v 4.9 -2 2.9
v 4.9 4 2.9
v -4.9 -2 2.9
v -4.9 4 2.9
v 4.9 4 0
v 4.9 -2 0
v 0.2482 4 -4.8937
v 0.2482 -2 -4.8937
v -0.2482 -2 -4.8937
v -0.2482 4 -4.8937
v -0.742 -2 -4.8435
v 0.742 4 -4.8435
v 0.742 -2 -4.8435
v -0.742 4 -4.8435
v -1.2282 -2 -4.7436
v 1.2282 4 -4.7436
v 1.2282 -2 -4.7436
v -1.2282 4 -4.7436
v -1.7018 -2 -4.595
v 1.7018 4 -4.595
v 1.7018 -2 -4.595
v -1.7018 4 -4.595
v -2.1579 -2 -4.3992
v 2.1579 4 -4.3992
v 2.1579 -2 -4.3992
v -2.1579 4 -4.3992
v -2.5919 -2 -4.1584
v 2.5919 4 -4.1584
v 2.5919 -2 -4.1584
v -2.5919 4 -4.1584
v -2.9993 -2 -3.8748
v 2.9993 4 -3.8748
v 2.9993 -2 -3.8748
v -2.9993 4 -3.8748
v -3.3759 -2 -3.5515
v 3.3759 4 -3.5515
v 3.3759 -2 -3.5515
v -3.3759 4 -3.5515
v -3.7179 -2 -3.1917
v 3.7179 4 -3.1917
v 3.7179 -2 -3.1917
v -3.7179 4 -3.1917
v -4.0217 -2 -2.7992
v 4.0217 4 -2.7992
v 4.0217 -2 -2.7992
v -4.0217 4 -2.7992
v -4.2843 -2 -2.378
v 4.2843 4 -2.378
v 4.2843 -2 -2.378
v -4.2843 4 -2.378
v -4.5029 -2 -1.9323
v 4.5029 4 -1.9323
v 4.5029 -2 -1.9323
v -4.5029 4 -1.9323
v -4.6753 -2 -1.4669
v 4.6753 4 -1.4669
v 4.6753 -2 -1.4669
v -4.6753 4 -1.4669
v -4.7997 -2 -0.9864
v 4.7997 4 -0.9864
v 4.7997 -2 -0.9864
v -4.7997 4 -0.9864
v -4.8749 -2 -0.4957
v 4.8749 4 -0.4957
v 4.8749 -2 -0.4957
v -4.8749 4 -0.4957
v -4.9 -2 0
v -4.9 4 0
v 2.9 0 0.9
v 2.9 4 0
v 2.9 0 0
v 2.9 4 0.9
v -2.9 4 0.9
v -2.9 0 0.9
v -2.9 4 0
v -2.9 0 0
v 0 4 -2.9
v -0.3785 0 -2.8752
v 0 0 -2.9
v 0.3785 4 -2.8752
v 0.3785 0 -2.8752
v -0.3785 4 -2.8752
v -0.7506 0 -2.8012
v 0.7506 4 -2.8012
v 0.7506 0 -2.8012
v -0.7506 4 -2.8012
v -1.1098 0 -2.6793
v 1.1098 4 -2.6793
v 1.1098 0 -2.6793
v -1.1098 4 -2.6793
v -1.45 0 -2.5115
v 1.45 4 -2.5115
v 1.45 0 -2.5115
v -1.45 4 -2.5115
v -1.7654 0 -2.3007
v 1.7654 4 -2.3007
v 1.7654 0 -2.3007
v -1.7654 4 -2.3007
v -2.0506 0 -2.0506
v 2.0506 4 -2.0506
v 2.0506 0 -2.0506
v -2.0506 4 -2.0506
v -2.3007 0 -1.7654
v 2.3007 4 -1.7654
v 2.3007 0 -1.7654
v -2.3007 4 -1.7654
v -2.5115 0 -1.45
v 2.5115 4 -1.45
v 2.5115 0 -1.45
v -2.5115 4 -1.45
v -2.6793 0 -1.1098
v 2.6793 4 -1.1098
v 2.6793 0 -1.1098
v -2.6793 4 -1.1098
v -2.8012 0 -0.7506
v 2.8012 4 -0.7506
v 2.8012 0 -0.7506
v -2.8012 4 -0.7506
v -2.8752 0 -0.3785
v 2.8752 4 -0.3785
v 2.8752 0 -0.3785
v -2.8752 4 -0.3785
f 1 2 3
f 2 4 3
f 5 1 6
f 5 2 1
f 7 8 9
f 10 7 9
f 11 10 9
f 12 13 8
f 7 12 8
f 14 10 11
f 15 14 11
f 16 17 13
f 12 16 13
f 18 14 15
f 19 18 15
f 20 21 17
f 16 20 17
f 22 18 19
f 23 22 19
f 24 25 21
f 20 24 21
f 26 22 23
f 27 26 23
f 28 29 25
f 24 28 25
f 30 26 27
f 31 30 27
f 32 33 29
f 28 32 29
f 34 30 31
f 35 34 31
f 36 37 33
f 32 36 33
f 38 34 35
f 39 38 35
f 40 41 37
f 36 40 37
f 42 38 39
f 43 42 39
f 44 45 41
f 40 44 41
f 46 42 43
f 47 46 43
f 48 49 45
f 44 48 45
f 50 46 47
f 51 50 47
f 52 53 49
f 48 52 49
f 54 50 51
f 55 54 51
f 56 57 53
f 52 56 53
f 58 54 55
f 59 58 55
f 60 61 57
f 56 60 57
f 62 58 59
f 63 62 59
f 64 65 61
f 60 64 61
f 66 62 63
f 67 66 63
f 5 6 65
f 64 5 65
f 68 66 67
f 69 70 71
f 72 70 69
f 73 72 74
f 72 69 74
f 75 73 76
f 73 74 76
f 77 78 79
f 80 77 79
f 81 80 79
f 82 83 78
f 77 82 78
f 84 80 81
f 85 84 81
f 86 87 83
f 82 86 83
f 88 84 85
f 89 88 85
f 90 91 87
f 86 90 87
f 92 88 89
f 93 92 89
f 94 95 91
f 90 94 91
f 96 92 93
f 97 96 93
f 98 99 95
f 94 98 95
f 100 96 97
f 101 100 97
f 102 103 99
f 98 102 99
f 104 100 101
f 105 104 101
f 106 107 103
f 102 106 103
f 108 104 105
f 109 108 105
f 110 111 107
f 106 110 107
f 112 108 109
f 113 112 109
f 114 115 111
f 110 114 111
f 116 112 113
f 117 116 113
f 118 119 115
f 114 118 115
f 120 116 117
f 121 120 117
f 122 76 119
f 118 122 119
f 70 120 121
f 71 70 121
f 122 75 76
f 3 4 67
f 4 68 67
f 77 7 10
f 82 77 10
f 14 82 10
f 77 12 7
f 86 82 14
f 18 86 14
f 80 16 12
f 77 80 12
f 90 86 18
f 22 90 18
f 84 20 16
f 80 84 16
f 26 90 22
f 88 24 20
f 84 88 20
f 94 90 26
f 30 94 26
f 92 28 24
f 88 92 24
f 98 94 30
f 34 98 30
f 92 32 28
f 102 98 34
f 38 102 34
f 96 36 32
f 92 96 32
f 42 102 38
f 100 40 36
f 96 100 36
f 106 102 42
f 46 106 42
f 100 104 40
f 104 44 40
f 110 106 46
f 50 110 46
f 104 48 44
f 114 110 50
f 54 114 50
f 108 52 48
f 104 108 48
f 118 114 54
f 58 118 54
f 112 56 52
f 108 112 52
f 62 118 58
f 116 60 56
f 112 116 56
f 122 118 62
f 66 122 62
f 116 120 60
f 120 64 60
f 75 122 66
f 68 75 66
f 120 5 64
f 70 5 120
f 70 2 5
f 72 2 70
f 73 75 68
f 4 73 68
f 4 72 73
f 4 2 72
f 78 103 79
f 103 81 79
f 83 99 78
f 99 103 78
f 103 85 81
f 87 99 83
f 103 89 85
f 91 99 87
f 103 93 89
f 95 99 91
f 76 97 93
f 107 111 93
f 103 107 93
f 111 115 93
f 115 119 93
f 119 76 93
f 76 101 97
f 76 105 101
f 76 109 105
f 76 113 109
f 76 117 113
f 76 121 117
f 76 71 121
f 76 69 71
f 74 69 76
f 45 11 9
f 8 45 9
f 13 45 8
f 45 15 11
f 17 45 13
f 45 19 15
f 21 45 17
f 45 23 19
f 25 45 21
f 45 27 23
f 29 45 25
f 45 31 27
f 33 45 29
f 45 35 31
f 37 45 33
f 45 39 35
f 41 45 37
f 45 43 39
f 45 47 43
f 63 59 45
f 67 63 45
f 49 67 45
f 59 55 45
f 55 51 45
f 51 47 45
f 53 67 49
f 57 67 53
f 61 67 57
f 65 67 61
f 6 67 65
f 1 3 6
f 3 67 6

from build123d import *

# Parameters (mm, degrees)
BOSS_EXTRUDE1_DEPTH = 4
BOSS_EXTRUDE2_START = -2
BOSS_EXTRUDE2_DEPTH = 2


with BuildPart() as part:
    # Sketch1 → Boss-Extrude1 (new body)
    with BuildSketch(Plane(origin=(0, 0, 0), x_dir=(1, 0, 0), z_dir=(0, 1, 0))):
        with BuildLine():
            Line((4.9, -2.9), (4.9, 0))
            ThreePointArc((4.9, 0), (0, 4.9), (-4.9, 0))
            Line((-4.9, 0), (-4.9, -2.9))
            Line((-4.9, -2.9), (4.9, -2.9))
        make_face()
        with BuildLine():
            Line((-2.9, -0.9), (-2.9, 0))
            ThreePointArc((-2.9, 0), (0, 2.9), (2.9, 0))
            Line((2.9, 0), (2.9, -0.9))
            Line((2.9, -0.9), (-2.9, -0.9))
        make_face(mode=Mode.SUBTRACT)
    extrude(amount=BOSS_EXTRUDE1_DEPTH)

    # Sketch1<3> → Boss-Extrude2 (add)
    with BuildSketch(Plane(origin=(0, 0, 0), x_dir=(1, 0, 0), z_dir=(0, 1, 0)).offset(BOSS_EXTRUDE2_START)):
        with BuildLine():
            ThreePointArc((4.9, 0), (0, 4.9), (-4.9, 0))
            Line((-4.9, 0), (-4.9, -2.9))
            Line((-4.9, -2.9), (4.9, -2.9))
            Line((4.9, -2.9), (4.9, 0))
        make_face()
    extrude(amount=BOSS_EXTRUDE2_DEPTH)


solid = part.part
